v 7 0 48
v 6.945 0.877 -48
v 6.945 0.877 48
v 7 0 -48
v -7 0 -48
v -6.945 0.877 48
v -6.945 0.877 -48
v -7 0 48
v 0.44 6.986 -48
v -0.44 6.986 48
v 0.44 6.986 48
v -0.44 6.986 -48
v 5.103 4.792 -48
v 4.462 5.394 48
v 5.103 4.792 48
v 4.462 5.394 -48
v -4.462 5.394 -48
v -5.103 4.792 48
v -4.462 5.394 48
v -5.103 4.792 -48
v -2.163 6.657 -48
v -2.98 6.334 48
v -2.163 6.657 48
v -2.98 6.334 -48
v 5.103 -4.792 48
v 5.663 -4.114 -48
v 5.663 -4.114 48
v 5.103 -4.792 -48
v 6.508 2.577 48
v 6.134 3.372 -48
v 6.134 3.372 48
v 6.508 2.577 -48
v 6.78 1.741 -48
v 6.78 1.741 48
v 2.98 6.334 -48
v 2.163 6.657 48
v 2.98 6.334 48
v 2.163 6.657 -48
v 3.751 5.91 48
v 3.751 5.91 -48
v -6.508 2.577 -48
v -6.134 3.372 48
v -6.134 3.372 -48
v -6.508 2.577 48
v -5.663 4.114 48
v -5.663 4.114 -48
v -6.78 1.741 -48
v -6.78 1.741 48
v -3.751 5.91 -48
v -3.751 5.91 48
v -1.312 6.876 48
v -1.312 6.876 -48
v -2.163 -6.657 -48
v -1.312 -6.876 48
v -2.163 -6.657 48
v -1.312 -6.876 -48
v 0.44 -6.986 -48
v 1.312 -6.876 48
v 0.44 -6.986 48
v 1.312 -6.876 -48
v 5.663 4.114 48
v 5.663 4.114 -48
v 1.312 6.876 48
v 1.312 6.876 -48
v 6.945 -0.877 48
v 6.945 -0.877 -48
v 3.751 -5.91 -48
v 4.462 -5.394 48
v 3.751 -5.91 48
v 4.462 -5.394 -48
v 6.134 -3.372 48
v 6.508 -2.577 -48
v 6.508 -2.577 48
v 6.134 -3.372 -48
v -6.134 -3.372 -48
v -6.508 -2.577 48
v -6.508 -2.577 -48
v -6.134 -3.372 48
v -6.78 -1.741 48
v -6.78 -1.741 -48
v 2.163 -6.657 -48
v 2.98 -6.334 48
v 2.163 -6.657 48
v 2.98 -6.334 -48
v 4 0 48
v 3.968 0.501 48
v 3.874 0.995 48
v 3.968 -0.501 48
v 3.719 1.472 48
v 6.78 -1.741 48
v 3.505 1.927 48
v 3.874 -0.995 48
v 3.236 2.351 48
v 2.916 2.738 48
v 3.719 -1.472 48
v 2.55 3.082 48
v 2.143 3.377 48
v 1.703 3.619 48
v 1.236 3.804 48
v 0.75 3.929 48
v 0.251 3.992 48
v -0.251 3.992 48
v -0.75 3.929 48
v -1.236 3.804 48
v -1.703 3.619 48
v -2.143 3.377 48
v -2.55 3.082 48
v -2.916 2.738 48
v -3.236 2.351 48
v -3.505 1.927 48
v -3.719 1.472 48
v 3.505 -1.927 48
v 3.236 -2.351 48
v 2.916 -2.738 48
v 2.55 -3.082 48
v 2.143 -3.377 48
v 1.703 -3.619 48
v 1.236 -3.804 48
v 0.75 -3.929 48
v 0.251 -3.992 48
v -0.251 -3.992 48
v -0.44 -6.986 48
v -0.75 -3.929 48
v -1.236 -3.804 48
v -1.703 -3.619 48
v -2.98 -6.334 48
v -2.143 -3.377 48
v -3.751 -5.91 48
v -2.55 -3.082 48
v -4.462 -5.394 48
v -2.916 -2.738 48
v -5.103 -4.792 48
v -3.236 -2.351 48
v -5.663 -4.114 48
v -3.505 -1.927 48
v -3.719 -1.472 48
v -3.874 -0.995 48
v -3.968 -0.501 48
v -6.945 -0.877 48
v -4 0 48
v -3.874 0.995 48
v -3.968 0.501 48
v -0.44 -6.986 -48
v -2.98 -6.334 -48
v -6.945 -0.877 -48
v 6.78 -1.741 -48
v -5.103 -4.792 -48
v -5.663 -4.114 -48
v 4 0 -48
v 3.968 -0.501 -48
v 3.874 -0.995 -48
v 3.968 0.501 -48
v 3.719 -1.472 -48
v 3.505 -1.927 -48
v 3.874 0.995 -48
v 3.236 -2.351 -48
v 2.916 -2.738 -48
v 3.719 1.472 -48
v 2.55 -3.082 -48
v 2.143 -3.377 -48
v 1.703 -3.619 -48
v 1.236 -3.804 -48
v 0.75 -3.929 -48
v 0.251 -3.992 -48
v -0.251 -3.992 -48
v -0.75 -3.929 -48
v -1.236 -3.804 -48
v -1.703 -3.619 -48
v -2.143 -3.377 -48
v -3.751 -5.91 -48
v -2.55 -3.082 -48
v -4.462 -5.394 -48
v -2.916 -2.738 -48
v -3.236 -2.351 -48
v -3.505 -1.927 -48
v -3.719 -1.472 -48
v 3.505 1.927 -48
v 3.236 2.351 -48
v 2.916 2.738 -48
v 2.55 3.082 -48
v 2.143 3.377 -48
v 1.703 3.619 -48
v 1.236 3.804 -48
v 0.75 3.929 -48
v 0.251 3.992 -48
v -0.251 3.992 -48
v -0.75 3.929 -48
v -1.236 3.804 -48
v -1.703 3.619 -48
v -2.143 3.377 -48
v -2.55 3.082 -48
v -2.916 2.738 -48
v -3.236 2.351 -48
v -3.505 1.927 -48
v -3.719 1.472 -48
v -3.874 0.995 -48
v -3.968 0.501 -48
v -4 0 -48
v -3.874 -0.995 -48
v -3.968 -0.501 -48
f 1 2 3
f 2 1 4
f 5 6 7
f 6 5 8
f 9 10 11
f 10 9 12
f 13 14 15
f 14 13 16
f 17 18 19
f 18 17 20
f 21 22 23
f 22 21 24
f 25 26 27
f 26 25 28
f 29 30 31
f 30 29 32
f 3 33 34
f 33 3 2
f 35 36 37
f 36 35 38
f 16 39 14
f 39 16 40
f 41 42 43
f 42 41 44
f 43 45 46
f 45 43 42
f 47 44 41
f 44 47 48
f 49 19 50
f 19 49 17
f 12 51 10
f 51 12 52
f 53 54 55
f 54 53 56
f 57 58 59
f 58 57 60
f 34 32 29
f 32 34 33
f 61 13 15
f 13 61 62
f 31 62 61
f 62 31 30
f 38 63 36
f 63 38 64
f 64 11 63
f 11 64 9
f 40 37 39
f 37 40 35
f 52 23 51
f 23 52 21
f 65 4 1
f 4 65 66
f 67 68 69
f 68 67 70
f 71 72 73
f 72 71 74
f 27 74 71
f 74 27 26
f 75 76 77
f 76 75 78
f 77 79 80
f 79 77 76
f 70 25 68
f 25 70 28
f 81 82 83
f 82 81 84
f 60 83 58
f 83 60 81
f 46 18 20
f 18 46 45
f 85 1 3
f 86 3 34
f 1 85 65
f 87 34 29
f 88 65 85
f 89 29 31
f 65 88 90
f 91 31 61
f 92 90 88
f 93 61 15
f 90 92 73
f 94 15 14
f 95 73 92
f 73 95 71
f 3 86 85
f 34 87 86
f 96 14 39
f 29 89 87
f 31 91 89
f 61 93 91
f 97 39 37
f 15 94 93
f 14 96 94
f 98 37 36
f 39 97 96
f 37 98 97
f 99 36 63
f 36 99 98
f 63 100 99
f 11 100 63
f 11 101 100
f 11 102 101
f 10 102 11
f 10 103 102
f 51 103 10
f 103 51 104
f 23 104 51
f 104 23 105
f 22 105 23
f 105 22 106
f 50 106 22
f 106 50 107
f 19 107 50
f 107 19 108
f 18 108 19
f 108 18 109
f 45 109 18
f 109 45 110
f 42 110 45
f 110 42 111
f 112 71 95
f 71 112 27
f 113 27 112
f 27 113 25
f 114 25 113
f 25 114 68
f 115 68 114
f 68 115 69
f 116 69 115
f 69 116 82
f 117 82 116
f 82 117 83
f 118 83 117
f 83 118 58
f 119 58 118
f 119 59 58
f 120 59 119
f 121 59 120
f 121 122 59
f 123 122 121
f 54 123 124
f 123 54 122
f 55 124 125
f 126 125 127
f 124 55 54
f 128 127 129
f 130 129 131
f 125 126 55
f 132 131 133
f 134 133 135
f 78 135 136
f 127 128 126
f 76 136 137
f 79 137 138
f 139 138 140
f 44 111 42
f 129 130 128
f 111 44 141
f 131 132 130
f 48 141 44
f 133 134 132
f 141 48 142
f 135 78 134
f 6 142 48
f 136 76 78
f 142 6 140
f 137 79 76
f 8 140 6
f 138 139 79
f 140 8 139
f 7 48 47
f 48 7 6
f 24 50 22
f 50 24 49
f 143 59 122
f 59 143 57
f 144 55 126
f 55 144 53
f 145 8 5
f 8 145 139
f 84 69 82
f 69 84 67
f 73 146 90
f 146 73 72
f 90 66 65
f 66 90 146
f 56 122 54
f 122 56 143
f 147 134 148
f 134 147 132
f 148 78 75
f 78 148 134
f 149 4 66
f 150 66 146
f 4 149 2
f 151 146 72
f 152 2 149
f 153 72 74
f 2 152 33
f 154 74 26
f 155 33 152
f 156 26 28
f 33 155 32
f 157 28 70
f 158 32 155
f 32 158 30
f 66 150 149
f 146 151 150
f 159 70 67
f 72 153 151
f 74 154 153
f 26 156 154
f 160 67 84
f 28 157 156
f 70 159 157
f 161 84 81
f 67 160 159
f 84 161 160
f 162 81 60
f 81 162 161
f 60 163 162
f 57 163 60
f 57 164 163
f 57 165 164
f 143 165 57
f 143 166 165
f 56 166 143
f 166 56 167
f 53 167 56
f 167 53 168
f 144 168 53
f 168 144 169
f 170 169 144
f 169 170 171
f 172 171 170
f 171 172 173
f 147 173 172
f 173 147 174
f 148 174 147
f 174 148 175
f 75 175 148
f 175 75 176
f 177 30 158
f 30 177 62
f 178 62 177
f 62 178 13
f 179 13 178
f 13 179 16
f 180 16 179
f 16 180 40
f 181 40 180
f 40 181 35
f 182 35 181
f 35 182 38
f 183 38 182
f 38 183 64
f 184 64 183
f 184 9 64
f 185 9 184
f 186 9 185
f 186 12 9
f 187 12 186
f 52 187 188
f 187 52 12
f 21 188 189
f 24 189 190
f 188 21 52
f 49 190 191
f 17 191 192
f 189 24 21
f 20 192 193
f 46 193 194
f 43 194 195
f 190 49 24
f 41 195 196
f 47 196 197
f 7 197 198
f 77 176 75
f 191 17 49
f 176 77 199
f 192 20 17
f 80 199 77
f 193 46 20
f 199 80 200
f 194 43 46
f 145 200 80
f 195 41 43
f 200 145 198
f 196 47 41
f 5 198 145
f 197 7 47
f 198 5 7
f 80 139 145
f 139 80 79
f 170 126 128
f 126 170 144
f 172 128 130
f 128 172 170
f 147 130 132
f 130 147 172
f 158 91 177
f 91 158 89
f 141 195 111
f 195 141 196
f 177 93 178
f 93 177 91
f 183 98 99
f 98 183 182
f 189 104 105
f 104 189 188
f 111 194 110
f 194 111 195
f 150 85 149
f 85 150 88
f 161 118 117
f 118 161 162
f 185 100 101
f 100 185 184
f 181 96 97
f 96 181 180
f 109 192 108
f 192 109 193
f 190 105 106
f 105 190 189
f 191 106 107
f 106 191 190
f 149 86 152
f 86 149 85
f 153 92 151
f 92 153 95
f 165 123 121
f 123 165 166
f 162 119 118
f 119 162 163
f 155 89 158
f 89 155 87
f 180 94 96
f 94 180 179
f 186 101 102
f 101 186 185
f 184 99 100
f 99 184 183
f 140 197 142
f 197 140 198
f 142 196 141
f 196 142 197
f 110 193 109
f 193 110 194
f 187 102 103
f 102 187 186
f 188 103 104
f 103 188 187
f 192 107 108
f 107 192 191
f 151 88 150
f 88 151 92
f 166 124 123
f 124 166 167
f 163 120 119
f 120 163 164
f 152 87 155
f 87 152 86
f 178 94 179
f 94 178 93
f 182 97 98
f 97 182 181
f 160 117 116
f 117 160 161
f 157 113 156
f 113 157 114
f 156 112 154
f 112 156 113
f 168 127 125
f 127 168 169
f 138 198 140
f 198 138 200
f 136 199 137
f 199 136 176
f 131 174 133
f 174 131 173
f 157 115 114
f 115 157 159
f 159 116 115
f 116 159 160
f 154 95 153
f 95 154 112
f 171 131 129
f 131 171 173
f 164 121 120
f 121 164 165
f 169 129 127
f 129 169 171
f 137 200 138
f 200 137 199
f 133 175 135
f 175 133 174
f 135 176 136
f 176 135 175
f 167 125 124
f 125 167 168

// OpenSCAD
$fn = 50;


difference() {
	union() {
		translate(v = [0, 0, -48.0000000000]) {
			cylinder(h = 96, r = 7.0000000000);
		}
	}
	union() {
		translate(v = [0, 0, -100.0000000000]) {
			cylinder(h = 200, r = 4.0000000000);
		}
	}
}
